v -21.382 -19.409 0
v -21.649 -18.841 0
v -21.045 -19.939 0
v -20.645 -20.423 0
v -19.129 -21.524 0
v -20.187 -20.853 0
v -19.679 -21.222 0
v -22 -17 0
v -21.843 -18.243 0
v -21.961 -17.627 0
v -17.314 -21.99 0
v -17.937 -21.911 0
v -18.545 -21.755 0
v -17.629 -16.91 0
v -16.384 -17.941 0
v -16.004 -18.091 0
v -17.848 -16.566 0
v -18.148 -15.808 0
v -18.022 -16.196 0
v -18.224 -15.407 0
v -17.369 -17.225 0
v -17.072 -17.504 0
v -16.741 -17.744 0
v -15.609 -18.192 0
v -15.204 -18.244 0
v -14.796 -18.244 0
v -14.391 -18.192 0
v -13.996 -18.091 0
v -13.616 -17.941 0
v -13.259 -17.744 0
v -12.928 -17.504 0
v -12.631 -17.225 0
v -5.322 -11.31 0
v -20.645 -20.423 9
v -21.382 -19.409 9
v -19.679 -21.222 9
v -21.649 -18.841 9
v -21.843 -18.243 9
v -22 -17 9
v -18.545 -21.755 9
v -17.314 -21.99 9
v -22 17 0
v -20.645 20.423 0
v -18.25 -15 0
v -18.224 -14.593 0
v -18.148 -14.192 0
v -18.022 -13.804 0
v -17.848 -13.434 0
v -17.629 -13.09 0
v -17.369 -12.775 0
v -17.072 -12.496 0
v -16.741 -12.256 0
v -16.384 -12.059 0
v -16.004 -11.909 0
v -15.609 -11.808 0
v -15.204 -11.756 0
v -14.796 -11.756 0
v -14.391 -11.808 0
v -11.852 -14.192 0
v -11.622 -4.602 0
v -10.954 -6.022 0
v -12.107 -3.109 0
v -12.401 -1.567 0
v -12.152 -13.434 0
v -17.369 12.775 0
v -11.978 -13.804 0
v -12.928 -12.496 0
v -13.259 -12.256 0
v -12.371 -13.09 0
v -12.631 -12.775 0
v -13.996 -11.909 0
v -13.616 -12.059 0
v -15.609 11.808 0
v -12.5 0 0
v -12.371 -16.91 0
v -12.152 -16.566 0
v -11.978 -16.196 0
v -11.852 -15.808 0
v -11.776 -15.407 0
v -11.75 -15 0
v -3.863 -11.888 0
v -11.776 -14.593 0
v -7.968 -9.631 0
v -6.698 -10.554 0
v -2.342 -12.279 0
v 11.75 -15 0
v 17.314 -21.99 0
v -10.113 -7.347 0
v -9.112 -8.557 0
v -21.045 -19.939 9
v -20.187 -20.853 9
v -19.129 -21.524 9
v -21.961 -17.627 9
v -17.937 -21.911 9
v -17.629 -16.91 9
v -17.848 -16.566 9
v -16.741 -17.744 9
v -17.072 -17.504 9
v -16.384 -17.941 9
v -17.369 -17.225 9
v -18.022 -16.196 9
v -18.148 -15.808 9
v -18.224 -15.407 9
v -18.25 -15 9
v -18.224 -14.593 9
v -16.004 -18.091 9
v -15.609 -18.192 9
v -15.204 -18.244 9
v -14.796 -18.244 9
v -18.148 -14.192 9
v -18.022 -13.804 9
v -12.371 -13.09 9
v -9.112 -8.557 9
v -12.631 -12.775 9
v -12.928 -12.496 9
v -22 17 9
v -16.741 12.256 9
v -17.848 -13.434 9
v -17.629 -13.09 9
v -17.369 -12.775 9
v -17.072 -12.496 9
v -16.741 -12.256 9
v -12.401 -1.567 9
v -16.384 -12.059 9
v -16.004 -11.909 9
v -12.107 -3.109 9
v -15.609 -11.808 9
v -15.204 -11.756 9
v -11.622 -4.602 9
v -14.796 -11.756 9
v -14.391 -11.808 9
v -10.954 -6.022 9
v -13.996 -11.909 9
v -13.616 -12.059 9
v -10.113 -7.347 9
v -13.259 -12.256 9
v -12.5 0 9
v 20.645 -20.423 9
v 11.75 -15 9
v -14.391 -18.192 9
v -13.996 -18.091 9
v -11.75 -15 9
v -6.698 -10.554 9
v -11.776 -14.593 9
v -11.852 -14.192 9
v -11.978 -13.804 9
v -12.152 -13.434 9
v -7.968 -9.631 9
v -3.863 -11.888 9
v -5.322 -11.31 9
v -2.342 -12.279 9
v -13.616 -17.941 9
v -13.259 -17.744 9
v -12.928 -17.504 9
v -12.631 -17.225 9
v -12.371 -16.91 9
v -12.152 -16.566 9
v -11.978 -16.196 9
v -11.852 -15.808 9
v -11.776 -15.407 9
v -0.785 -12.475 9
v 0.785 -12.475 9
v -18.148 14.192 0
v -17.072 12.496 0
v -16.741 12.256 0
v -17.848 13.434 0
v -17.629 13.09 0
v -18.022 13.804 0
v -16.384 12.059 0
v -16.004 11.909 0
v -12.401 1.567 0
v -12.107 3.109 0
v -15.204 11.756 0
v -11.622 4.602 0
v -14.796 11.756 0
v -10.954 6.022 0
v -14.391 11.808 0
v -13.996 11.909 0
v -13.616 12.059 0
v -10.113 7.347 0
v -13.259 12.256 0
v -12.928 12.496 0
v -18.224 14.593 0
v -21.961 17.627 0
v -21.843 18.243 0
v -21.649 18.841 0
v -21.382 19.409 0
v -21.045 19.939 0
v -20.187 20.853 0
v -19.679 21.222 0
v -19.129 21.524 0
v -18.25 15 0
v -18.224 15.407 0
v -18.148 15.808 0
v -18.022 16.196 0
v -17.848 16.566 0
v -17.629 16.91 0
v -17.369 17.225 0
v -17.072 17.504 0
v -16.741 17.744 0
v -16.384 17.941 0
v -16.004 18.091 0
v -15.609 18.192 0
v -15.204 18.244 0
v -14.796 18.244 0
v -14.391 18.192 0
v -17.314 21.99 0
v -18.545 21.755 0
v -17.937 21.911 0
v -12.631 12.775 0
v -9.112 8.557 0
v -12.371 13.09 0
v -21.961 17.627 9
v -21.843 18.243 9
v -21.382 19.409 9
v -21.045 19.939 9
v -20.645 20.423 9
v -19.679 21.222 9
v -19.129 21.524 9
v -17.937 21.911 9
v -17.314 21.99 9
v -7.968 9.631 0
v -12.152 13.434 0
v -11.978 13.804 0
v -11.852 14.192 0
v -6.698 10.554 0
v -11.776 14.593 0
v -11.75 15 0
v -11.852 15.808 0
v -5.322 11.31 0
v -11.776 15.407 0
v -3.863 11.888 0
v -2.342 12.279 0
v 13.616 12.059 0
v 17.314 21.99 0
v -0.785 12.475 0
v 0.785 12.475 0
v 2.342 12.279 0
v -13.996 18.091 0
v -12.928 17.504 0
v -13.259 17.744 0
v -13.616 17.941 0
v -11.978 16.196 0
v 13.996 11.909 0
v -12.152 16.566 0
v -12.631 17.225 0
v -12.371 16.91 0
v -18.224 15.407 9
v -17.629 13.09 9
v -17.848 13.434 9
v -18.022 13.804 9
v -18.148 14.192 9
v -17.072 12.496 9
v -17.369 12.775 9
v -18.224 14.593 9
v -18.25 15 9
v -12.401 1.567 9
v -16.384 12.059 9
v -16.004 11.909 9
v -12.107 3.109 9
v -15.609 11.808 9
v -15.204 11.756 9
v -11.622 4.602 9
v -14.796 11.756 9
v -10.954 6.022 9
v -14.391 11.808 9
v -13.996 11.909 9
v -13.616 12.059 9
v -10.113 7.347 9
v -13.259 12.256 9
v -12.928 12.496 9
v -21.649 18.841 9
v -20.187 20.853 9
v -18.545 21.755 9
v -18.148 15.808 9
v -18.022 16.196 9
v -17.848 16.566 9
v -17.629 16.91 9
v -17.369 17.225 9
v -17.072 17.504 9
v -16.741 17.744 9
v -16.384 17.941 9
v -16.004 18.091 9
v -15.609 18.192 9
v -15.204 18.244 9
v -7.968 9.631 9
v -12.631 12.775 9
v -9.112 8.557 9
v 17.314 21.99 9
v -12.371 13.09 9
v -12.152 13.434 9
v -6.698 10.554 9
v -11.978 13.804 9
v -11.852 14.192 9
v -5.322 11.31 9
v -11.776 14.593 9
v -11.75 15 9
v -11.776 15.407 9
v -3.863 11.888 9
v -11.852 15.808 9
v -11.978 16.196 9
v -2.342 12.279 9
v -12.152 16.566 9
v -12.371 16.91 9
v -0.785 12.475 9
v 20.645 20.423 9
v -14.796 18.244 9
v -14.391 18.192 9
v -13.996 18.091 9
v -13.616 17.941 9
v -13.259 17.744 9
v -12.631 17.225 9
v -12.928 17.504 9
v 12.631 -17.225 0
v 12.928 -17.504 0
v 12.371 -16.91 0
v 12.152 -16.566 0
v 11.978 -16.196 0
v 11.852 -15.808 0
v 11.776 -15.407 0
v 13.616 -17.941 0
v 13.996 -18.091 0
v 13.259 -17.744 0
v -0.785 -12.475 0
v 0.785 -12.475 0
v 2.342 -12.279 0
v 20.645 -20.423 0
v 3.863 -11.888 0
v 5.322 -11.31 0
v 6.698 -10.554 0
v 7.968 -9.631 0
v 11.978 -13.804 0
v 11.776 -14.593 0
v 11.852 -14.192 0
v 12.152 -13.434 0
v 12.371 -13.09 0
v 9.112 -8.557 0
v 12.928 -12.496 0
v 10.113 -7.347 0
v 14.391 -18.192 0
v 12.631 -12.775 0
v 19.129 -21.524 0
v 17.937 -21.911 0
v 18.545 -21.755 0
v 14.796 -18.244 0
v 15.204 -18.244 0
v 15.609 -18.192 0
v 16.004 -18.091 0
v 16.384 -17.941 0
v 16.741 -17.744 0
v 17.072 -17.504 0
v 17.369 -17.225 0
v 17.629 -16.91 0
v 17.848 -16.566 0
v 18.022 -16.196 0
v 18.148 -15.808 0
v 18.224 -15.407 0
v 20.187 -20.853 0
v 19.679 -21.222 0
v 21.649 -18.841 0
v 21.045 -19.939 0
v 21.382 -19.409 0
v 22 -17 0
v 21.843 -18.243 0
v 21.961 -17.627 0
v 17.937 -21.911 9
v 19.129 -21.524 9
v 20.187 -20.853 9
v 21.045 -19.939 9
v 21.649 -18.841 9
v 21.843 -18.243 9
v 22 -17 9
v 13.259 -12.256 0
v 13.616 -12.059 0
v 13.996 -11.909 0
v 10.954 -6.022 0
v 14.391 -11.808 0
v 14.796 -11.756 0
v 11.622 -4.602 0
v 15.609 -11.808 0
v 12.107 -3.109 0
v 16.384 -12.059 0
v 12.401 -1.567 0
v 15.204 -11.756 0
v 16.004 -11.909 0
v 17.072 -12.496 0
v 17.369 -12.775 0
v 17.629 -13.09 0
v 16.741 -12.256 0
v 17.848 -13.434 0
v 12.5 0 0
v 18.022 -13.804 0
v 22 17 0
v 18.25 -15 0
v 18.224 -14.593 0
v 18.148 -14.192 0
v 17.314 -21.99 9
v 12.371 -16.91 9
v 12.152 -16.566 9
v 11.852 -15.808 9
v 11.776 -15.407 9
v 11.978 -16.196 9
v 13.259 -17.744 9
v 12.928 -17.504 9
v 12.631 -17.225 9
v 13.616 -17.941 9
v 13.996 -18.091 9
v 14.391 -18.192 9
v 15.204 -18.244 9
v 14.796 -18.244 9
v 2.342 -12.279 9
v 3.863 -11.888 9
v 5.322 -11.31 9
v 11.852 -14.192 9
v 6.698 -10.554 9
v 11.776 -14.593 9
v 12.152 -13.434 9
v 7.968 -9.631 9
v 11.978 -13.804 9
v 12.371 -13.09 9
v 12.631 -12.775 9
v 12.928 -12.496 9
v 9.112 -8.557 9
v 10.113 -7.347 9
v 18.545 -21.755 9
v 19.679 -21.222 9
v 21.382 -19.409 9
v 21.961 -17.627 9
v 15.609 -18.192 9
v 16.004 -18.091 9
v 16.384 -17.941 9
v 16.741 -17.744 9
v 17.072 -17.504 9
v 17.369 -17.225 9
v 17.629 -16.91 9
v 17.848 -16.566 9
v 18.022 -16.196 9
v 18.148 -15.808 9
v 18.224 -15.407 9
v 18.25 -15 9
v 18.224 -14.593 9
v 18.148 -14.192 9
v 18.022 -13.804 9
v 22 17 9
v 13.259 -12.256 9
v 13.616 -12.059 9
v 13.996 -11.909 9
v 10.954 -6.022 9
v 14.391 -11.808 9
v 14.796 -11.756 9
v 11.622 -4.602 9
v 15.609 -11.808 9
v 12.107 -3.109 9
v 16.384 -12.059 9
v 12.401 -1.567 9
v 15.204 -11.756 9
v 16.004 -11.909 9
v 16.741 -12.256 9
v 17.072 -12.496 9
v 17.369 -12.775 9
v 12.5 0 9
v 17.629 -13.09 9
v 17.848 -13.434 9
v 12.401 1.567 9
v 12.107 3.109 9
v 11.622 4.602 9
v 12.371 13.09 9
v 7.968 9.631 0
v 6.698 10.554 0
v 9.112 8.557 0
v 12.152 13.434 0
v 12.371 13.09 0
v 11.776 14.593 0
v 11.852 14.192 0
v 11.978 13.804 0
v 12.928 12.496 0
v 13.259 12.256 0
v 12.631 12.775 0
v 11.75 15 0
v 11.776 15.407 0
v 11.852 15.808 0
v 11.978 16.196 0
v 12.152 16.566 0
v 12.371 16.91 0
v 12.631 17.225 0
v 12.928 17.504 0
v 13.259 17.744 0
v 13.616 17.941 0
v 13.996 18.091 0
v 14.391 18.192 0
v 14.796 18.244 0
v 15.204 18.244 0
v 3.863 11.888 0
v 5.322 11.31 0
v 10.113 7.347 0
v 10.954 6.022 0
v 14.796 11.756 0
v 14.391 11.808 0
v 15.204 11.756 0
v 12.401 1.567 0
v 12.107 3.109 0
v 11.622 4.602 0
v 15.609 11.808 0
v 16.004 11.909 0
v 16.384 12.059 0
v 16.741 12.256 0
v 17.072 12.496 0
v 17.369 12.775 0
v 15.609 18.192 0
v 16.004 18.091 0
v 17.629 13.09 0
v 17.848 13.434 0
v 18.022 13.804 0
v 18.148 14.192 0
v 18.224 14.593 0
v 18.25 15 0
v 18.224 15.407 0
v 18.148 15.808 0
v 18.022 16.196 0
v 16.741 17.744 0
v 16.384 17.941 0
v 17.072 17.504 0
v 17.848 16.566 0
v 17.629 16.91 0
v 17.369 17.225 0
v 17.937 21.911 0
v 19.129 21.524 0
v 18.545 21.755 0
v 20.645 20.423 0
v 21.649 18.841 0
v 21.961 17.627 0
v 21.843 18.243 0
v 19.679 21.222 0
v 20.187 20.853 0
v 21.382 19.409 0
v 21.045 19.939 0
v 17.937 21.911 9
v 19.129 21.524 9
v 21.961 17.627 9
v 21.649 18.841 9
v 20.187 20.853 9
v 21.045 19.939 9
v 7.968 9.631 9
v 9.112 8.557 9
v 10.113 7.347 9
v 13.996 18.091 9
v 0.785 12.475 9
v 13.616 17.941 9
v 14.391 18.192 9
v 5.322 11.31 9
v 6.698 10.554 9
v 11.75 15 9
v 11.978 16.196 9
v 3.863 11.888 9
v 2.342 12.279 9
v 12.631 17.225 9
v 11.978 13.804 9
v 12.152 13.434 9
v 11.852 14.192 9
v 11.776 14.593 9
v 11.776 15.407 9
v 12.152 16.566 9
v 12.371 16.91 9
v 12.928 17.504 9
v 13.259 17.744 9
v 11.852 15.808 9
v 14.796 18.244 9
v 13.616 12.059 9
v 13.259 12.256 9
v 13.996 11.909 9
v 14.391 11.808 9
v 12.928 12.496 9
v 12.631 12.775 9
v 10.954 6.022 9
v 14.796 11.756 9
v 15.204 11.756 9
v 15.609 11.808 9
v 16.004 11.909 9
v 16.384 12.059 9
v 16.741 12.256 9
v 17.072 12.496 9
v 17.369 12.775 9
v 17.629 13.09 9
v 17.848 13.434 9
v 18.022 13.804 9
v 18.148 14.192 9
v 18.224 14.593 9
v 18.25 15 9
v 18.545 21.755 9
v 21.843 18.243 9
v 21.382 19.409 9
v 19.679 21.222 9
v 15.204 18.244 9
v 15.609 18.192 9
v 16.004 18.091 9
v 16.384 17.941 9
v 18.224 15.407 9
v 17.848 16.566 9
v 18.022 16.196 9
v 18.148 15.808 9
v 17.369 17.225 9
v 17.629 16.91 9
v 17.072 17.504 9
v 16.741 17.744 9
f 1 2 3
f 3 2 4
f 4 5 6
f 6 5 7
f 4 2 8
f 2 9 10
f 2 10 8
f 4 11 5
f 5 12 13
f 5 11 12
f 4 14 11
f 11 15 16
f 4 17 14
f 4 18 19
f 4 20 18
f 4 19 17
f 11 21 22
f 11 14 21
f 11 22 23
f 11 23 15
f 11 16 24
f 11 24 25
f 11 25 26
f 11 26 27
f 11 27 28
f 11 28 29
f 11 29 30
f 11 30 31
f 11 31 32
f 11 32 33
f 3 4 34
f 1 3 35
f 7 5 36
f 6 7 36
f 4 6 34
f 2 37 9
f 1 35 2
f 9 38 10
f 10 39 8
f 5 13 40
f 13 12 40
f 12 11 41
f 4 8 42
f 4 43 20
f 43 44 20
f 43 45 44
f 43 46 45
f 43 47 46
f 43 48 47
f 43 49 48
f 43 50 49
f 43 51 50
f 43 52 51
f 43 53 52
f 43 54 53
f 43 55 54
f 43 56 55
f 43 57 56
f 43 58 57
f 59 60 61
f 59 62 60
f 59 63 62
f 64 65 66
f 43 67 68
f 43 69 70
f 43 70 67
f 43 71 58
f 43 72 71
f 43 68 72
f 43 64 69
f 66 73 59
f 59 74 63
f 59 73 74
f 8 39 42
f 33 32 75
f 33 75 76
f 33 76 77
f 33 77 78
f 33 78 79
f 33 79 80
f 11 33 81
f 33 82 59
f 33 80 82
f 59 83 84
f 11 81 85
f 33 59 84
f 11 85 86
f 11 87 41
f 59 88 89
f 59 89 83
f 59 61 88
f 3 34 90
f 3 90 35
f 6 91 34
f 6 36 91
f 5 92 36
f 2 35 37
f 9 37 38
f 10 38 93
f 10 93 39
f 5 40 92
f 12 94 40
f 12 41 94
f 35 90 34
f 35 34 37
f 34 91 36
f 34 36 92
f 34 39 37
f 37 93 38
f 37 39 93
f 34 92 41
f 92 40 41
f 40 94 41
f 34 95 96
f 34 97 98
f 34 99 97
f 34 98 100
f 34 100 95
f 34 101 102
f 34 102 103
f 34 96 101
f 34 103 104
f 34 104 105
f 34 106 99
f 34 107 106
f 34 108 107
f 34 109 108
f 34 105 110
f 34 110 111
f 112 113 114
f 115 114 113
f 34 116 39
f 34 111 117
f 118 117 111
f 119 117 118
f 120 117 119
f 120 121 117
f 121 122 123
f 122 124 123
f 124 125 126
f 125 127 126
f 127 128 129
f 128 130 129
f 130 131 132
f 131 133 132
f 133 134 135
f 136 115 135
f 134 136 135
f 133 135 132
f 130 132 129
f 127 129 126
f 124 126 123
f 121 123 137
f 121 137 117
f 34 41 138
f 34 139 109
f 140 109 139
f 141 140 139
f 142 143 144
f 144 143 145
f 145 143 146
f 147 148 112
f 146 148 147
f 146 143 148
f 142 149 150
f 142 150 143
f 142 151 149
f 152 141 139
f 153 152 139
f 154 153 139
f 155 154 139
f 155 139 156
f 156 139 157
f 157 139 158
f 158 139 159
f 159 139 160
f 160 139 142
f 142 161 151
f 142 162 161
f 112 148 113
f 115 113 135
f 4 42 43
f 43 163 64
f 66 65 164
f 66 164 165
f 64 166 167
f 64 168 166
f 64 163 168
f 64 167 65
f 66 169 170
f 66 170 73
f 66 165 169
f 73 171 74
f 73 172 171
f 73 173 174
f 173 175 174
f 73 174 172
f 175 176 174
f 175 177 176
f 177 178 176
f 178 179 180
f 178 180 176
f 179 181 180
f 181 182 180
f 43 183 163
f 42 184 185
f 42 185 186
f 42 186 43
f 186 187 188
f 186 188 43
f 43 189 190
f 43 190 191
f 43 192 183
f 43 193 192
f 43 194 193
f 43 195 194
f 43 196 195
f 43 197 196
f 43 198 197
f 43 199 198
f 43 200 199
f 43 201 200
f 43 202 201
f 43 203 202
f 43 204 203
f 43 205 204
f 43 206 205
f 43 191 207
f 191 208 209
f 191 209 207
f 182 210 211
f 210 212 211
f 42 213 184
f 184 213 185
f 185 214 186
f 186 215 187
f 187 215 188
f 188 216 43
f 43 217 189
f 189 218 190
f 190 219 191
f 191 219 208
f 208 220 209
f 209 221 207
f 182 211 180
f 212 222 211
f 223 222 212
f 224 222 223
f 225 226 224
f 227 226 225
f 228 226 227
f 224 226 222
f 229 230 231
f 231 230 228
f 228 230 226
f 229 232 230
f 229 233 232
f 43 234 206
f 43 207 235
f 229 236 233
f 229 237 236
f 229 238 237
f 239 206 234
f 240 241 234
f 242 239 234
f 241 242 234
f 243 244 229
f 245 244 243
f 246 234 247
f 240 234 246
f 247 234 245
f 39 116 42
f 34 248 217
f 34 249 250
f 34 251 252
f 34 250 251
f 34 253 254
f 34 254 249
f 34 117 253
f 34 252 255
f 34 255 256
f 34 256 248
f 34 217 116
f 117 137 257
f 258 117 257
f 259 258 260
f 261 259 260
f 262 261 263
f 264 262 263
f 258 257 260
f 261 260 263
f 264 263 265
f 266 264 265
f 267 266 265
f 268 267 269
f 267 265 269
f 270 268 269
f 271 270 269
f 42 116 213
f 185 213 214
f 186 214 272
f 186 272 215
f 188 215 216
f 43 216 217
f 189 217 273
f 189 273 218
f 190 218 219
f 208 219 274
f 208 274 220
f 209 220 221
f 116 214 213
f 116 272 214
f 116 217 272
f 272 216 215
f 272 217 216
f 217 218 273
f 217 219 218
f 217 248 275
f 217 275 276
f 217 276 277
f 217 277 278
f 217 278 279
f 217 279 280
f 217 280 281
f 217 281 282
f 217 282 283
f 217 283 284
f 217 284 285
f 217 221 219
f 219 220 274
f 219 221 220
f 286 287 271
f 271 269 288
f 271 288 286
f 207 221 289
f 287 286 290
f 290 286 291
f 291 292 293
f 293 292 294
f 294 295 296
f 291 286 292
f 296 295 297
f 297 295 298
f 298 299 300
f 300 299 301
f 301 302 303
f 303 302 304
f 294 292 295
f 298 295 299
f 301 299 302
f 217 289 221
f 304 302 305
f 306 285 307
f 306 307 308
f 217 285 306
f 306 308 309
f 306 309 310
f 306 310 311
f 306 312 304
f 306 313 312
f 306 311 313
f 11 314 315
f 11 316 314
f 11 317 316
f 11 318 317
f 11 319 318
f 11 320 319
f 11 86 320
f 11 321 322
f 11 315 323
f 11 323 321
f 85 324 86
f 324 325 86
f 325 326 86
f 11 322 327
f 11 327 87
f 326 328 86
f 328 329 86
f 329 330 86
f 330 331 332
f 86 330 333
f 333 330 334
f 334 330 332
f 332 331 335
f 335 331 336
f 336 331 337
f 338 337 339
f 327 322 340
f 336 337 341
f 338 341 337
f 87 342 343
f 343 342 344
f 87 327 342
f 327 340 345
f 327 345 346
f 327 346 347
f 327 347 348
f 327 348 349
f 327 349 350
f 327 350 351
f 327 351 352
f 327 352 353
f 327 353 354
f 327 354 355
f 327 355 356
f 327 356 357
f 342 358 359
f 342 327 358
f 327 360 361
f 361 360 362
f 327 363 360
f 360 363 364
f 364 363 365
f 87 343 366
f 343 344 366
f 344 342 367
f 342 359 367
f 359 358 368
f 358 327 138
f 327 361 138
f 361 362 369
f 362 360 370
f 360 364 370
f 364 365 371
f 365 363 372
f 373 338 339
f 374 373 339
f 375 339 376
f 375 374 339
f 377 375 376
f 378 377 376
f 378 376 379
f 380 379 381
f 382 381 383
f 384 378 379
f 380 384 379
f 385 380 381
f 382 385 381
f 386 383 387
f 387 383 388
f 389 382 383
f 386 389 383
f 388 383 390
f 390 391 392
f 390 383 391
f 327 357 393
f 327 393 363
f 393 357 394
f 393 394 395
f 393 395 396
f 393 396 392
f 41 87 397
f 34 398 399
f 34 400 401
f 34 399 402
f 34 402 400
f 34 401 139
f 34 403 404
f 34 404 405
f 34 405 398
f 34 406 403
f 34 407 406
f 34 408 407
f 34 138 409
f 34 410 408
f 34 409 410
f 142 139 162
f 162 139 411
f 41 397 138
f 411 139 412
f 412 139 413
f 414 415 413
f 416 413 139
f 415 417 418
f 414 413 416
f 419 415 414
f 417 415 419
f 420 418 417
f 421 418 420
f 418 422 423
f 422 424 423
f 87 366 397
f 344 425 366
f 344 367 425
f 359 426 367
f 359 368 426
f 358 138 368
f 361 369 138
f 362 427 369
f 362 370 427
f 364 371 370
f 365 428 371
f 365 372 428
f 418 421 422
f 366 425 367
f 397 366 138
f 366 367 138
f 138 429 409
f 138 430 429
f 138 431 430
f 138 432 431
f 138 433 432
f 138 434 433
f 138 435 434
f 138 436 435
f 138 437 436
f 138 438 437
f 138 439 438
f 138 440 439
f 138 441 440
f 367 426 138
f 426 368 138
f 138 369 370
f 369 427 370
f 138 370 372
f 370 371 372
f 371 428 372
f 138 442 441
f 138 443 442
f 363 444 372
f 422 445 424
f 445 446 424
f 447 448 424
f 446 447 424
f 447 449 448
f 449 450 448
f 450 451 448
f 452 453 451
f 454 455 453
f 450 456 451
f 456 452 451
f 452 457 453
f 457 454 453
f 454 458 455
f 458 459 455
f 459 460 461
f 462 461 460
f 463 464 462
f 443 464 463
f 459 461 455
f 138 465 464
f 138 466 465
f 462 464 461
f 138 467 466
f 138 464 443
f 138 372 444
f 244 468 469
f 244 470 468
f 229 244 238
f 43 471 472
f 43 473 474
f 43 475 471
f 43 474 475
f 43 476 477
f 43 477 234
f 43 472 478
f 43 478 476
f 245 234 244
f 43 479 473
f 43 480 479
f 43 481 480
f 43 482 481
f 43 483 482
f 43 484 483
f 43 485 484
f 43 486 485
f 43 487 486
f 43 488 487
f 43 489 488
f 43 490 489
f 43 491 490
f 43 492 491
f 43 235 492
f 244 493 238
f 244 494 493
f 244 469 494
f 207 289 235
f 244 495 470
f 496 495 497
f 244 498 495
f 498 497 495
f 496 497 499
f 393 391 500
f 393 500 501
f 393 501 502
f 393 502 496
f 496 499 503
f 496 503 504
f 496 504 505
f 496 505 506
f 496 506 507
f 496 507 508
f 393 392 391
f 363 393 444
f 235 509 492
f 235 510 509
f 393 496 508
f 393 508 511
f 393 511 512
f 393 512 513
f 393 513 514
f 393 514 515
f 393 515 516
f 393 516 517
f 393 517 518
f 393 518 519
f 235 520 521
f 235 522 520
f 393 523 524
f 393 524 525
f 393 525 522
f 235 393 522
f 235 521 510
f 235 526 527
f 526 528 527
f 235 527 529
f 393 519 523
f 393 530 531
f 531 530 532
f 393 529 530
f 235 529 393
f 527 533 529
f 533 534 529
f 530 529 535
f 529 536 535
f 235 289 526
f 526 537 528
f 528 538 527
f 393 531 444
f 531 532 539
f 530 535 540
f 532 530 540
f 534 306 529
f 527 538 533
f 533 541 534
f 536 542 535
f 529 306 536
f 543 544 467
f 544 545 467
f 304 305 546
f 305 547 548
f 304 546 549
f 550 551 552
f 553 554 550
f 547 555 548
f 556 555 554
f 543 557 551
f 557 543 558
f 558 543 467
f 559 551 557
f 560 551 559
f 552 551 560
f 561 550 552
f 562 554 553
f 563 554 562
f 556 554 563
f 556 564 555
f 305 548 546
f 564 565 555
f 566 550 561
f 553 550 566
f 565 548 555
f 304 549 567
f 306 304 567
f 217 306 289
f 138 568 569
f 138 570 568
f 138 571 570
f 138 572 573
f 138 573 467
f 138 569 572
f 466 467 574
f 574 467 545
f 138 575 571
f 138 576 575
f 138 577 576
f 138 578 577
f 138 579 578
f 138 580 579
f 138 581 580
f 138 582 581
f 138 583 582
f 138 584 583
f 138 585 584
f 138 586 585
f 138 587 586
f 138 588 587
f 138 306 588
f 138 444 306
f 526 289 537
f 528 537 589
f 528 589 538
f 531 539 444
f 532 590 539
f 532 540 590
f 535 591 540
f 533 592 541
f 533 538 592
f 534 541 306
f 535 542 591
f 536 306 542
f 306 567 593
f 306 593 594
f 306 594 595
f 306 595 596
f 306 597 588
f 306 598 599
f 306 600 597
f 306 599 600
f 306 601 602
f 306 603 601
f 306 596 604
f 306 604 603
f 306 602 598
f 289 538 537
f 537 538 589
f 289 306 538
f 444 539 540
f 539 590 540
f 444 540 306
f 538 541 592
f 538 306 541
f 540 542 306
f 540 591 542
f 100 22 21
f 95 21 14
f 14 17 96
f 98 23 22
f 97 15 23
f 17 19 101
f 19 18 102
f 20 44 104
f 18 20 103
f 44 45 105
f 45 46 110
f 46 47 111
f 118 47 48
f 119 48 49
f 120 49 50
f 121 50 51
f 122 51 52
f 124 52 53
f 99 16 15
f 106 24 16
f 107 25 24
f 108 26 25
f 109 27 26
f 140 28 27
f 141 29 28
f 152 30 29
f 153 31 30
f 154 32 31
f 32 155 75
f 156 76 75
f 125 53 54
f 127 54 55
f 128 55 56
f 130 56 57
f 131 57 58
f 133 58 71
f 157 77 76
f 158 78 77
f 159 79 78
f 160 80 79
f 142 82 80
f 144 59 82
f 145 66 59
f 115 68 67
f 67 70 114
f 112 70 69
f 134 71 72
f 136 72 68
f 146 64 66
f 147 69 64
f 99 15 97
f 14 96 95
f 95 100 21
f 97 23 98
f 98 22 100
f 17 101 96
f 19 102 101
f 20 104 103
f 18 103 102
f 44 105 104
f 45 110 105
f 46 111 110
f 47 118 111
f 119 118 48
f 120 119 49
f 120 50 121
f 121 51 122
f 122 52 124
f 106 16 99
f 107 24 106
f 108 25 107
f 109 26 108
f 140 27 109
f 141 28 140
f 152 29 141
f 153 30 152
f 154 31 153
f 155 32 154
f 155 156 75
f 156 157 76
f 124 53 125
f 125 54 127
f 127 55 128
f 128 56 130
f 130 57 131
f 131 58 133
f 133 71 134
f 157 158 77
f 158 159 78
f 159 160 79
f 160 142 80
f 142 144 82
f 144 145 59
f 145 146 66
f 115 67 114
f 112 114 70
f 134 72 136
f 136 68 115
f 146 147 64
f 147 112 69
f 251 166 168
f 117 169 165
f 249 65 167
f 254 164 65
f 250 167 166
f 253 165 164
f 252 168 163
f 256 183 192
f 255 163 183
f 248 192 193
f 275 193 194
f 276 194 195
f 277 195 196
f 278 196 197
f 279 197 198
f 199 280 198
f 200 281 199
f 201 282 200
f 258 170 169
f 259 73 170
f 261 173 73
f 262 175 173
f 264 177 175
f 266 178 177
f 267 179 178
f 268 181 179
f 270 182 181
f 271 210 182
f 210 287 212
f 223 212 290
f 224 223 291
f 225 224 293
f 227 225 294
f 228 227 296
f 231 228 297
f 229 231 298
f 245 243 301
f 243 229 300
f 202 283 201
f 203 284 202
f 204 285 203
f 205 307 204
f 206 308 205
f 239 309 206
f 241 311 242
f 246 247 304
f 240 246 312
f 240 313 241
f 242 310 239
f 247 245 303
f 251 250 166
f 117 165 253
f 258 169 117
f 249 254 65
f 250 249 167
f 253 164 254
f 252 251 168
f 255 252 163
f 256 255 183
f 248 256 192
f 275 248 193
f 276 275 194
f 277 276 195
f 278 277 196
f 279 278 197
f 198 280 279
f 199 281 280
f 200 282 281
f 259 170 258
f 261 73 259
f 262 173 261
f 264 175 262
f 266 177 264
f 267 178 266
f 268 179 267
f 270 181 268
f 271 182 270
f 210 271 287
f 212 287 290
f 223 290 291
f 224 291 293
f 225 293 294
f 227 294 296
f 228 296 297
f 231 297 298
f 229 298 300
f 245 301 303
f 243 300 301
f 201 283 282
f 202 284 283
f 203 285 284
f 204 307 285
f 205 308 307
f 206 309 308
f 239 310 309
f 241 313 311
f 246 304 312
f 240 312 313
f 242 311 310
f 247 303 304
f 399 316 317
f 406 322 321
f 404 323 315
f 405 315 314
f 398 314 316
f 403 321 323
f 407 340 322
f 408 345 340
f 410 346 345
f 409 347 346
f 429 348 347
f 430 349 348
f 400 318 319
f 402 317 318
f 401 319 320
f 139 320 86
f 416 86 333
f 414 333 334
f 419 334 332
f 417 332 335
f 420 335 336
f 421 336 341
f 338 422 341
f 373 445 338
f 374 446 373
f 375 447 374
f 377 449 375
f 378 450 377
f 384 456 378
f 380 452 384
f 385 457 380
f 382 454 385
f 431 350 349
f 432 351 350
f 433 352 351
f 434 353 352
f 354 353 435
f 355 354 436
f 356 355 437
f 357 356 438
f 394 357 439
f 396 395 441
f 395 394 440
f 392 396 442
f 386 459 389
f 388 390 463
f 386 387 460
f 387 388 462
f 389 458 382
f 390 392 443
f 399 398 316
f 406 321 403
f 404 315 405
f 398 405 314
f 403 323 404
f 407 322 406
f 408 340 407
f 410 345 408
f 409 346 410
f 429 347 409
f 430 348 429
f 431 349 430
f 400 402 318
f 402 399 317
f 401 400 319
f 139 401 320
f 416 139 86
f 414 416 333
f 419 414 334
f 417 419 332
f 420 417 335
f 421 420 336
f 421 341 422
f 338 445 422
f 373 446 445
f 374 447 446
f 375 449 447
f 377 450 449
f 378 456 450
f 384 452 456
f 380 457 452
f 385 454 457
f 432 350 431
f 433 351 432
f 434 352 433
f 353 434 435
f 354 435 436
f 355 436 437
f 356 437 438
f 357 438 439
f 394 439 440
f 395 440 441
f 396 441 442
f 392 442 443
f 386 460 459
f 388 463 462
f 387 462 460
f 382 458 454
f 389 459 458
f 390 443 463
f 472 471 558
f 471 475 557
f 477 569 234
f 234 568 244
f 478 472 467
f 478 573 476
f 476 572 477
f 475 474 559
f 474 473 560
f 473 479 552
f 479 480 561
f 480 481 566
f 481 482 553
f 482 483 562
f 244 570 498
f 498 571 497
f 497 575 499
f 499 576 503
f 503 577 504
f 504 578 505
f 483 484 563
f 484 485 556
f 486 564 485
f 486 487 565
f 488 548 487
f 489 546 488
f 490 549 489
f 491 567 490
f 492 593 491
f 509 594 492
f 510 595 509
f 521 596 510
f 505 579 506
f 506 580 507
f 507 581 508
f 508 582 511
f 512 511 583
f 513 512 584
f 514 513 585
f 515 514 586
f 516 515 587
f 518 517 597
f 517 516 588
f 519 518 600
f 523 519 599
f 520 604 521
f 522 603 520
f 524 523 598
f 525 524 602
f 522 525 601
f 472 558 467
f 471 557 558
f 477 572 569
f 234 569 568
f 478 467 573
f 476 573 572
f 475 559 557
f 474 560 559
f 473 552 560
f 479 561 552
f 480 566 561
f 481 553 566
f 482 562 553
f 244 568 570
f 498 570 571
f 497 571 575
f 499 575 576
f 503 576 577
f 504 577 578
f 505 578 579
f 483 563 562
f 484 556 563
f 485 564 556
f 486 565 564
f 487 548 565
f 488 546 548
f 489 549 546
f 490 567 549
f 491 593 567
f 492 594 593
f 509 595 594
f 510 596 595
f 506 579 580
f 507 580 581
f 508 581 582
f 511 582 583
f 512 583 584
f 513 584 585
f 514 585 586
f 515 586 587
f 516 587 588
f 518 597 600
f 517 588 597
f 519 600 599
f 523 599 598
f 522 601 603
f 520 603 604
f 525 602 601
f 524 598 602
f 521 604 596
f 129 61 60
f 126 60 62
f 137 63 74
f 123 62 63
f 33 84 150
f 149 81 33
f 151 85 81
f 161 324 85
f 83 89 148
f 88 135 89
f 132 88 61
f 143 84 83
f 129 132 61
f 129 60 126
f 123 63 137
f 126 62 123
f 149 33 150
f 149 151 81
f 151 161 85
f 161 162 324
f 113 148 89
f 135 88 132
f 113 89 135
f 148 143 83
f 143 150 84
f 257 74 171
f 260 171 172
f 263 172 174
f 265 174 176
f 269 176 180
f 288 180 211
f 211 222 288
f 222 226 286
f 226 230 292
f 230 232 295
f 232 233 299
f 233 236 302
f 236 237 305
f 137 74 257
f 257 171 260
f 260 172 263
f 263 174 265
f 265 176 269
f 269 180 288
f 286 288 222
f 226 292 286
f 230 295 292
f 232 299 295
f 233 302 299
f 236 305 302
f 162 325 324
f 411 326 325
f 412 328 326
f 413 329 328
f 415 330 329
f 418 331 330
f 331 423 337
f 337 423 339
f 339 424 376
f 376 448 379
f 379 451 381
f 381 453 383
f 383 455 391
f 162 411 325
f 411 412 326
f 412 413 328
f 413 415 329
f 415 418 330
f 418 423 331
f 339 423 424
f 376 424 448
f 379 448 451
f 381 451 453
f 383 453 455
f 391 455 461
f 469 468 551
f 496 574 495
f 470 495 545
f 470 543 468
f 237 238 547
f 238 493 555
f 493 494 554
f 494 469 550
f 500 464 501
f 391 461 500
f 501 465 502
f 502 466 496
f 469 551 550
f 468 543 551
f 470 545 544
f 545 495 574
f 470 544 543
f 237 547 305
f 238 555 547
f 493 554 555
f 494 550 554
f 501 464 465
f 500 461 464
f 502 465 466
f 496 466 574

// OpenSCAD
$fn = 50;

difference() {
	union() {
		hull() {
			translate(v = [-17.0, 17.0, 0]) {
				cylinder(h = 9, r = 5);
			}
			translate(v = [17.0, 17.0, 0]) {
				cylinder(h = 9, r = 5);
			}
			translate(v = [-17.0, -17.0, 0]) {
				cylinder(h = 9, r = 5);
			}
			translate(v = [17.0, -17.0, 0]) {
				cylinder(h = 9, r = 5);
			}
		}
	}
	union() {
		translate(v = [-15.0, -15.0, -100.0]) {
			cylinder(h = 200, r = 3.25);
		}
		translate(v = [-15.0, 15.0, -100.0]) {
			cylinder(h = 200, r = 3.25);
		}
		translate(v = [15.0, -15.0, -100.0]) {
			cylinder(h = 200, r = 3.25);
		}
		translate(v = [15.0, 15.0, -100.0]) {
			cylinder(h = 200, r = 3.25);
		}
		translate(v = [-15.0, -15.0, -100.0]) {
			cylinder(h = 200, r = 1.8);
		}
		translate(v = [-15.0, 15.0, -100.0]) {
			cylinder(h = 200, r = 1.8);
		}
		translate(v = [15.0, -15.0, -100.0]) {
			cylinder(h = 200, r = 1.8);
		}
		translate(v = [15.0, 15.0, -100.0]) {
			cylinder(h = 200, r = 1.8);
		}
		cylinder(h = 9, r = 12.5);
	}
}
